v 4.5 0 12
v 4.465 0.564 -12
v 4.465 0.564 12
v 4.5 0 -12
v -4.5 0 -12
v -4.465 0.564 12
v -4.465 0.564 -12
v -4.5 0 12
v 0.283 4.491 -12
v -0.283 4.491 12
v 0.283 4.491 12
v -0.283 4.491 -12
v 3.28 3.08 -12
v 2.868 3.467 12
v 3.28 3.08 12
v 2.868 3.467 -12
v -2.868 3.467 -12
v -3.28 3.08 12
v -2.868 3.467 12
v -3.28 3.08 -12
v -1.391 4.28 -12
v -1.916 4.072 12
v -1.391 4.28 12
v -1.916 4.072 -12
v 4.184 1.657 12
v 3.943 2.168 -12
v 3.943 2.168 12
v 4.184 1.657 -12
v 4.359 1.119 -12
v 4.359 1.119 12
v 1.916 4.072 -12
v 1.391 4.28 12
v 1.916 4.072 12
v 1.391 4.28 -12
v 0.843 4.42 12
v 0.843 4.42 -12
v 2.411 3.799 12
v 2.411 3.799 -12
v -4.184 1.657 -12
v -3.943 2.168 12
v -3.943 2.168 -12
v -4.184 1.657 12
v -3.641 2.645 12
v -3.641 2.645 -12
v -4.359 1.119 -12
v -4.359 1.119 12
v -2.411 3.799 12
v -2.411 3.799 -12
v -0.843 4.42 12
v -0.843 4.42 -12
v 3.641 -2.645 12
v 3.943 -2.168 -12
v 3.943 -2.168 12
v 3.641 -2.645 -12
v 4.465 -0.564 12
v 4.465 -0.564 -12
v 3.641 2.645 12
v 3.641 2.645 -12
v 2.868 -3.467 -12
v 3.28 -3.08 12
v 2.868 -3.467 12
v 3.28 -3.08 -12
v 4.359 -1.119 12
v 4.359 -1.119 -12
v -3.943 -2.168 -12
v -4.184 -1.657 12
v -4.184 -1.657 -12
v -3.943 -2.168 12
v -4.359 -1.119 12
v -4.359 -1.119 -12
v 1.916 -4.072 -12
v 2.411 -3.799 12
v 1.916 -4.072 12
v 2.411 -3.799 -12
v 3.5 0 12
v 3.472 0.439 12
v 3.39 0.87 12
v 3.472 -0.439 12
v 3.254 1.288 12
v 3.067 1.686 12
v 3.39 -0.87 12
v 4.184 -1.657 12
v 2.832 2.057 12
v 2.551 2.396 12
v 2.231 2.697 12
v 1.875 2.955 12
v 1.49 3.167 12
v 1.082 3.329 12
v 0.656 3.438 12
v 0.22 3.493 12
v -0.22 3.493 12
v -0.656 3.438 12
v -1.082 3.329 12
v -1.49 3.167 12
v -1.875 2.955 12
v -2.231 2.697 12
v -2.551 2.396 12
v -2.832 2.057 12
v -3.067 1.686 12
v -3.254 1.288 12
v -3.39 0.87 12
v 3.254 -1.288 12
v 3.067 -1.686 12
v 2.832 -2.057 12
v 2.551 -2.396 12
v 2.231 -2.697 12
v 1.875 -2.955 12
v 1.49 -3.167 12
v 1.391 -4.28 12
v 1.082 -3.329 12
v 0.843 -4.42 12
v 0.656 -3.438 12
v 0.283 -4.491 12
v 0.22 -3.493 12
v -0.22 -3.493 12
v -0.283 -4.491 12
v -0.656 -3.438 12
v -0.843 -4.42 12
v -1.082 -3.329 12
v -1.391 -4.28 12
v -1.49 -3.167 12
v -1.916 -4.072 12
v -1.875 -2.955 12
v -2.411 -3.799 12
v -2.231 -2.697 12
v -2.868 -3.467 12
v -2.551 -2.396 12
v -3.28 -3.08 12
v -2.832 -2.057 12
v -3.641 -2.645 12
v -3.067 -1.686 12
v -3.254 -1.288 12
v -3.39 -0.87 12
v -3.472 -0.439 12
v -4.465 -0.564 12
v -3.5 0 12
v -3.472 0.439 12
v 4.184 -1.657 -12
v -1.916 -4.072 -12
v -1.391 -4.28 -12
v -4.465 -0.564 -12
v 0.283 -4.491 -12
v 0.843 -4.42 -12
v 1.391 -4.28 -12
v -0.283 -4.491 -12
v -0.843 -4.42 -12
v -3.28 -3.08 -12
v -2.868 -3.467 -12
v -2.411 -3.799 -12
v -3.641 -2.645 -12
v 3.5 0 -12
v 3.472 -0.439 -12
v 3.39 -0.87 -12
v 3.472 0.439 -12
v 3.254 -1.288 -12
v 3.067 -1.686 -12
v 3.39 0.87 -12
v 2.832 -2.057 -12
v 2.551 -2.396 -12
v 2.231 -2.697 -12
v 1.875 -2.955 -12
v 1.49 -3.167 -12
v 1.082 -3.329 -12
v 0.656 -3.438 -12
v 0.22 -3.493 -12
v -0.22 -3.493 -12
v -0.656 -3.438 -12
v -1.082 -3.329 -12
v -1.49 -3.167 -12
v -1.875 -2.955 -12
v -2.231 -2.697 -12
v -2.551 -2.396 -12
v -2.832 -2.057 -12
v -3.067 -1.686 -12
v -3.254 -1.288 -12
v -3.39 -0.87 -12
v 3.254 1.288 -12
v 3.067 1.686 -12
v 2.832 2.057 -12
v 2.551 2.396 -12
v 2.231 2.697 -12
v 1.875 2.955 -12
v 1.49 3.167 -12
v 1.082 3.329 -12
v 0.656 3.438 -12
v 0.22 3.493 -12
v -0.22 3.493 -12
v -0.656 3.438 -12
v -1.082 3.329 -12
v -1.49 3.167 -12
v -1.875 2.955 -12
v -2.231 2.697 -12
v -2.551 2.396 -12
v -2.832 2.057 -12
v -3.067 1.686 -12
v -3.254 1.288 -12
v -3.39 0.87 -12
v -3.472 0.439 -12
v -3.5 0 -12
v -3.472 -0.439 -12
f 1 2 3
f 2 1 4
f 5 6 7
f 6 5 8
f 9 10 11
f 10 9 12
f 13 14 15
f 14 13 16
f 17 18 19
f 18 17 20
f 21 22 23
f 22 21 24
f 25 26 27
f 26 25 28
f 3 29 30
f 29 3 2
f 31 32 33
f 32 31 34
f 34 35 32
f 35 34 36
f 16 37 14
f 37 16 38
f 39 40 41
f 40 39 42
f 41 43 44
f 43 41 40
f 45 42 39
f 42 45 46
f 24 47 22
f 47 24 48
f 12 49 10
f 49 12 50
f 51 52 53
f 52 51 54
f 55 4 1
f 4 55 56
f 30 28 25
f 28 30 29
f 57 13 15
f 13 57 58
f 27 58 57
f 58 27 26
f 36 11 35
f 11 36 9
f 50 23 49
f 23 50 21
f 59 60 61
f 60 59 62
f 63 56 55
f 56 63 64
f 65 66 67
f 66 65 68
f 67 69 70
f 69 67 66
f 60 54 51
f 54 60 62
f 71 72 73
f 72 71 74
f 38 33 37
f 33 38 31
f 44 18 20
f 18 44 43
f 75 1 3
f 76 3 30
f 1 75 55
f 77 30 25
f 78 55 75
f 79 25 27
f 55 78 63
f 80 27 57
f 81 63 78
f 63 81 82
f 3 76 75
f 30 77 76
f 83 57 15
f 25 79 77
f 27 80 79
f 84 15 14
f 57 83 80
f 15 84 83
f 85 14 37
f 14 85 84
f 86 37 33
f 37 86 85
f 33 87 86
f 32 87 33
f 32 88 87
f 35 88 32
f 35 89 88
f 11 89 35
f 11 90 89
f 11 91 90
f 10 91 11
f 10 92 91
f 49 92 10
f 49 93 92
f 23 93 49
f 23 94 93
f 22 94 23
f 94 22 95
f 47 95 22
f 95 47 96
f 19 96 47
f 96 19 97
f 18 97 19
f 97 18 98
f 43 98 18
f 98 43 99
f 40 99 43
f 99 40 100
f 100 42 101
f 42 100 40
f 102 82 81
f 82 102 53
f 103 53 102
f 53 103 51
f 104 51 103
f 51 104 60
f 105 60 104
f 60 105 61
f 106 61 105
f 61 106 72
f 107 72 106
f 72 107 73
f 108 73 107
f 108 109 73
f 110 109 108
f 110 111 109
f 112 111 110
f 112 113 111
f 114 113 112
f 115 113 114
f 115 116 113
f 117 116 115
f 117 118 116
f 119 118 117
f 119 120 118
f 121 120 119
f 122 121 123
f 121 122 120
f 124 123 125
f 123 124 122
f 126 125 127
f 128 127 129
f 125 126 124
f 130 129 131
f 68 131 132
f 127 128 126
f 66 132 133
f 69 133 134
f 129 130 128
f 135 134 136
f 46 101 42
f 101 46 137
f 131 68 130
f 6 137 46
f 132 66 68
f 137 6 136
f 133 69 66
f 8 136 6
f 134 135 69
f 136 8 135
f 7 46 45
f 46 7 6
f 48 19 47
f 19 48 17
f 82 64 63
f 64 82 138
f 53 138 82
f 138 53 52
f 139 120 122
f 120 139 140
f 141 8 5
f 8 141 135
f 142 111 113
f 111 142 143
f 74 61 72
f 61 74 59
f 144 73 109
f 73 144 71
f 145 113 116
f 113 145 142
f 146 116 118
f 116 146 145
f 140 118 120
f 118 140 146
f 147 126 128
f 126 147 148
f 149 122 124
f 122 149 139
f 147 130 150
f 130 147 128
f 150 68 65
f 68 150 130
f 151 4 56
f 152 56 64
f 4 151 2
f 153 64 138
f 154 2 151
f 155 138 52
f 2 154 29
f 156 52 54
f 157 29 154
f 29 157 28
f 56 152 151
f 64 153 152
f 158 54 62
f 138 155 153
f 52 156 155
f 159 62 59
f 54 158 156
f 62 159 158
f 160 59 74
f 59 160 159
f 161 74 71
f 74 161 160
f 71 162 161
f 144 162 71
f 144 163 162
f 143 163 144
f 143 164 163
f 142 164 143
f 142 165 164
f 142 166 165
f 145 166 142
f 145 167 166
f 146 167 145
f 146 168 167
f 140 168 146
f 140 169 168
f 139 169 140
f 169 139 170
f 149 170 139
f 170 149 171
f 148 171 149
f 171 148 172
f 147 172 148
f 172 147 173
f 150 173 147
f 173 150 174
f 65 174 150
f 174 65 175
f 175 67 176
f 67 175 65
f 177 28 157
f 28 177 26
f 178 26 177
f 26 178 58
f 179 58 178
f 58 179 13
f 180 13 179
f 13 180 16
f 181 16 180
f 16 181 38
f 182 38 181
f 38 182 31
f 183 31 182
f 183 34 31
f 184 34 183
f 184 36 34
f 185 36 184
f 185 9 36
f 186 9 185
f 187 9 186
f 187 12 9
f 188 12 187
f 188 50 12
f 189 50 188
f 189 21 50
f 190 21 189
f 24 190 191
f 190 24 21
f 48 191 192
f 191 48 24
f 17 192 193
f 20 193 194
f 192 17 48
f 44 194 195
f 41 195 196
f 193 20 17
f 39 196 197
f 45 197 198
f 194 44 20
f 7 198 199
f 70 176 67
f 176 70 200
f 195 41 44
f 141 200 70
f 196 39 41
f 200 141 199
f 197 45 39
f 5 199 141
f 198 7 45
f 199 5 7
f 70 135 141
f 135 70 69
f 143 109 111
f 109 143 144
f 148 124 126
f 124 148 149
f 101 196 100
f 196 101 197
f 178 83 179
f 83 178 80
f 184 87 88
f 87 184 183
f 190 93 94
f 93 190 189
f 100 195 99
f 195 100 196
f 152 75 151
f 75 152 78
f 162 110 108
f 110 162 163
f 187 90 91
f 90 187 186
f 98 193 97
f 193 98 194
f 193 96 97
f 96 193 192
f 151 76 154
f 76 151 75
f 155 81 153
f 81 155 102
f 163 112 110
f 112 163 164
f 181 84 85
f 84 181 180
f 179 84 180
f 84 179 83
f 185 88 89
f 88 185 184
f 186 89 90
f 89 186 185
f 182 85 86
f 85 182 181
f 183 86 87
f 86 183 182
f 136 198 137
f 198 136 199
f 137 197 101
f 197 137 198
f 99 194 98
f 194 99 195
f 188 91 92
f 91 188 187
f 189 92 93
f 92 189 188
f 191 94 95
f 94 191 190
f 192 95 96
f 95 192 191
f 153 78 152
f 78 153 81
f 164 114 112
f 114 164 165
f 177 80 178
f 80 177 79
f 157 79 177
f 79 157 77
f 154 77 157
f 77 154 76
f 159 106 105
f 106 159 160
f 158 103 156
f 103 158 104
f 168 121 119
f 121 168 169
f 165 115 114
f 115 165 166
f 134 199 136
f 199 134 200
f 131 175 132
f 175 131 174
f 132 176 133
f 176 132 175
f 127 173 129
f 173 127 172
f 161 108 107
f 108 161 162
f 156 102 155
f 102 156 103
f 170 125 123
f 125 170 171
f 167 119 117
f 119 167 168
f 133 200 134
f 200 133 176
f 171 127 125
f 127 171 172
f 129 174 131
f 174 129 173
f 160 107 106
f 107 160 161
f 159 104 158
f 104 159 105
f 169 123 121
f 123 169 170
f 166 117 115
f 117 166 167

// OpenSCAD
$fn = 50;


difference() {
	union() {
		translate(v = [0, 0, -12.0000000000]) {
			cylinder(h = 24, r = 4.5000000000);
		}
	}
	union() {
		translate(v = [0, 0, -100.0000000000]) {
			cylinder(h = 200, r = 3.5000000000);
		}
	}
}
